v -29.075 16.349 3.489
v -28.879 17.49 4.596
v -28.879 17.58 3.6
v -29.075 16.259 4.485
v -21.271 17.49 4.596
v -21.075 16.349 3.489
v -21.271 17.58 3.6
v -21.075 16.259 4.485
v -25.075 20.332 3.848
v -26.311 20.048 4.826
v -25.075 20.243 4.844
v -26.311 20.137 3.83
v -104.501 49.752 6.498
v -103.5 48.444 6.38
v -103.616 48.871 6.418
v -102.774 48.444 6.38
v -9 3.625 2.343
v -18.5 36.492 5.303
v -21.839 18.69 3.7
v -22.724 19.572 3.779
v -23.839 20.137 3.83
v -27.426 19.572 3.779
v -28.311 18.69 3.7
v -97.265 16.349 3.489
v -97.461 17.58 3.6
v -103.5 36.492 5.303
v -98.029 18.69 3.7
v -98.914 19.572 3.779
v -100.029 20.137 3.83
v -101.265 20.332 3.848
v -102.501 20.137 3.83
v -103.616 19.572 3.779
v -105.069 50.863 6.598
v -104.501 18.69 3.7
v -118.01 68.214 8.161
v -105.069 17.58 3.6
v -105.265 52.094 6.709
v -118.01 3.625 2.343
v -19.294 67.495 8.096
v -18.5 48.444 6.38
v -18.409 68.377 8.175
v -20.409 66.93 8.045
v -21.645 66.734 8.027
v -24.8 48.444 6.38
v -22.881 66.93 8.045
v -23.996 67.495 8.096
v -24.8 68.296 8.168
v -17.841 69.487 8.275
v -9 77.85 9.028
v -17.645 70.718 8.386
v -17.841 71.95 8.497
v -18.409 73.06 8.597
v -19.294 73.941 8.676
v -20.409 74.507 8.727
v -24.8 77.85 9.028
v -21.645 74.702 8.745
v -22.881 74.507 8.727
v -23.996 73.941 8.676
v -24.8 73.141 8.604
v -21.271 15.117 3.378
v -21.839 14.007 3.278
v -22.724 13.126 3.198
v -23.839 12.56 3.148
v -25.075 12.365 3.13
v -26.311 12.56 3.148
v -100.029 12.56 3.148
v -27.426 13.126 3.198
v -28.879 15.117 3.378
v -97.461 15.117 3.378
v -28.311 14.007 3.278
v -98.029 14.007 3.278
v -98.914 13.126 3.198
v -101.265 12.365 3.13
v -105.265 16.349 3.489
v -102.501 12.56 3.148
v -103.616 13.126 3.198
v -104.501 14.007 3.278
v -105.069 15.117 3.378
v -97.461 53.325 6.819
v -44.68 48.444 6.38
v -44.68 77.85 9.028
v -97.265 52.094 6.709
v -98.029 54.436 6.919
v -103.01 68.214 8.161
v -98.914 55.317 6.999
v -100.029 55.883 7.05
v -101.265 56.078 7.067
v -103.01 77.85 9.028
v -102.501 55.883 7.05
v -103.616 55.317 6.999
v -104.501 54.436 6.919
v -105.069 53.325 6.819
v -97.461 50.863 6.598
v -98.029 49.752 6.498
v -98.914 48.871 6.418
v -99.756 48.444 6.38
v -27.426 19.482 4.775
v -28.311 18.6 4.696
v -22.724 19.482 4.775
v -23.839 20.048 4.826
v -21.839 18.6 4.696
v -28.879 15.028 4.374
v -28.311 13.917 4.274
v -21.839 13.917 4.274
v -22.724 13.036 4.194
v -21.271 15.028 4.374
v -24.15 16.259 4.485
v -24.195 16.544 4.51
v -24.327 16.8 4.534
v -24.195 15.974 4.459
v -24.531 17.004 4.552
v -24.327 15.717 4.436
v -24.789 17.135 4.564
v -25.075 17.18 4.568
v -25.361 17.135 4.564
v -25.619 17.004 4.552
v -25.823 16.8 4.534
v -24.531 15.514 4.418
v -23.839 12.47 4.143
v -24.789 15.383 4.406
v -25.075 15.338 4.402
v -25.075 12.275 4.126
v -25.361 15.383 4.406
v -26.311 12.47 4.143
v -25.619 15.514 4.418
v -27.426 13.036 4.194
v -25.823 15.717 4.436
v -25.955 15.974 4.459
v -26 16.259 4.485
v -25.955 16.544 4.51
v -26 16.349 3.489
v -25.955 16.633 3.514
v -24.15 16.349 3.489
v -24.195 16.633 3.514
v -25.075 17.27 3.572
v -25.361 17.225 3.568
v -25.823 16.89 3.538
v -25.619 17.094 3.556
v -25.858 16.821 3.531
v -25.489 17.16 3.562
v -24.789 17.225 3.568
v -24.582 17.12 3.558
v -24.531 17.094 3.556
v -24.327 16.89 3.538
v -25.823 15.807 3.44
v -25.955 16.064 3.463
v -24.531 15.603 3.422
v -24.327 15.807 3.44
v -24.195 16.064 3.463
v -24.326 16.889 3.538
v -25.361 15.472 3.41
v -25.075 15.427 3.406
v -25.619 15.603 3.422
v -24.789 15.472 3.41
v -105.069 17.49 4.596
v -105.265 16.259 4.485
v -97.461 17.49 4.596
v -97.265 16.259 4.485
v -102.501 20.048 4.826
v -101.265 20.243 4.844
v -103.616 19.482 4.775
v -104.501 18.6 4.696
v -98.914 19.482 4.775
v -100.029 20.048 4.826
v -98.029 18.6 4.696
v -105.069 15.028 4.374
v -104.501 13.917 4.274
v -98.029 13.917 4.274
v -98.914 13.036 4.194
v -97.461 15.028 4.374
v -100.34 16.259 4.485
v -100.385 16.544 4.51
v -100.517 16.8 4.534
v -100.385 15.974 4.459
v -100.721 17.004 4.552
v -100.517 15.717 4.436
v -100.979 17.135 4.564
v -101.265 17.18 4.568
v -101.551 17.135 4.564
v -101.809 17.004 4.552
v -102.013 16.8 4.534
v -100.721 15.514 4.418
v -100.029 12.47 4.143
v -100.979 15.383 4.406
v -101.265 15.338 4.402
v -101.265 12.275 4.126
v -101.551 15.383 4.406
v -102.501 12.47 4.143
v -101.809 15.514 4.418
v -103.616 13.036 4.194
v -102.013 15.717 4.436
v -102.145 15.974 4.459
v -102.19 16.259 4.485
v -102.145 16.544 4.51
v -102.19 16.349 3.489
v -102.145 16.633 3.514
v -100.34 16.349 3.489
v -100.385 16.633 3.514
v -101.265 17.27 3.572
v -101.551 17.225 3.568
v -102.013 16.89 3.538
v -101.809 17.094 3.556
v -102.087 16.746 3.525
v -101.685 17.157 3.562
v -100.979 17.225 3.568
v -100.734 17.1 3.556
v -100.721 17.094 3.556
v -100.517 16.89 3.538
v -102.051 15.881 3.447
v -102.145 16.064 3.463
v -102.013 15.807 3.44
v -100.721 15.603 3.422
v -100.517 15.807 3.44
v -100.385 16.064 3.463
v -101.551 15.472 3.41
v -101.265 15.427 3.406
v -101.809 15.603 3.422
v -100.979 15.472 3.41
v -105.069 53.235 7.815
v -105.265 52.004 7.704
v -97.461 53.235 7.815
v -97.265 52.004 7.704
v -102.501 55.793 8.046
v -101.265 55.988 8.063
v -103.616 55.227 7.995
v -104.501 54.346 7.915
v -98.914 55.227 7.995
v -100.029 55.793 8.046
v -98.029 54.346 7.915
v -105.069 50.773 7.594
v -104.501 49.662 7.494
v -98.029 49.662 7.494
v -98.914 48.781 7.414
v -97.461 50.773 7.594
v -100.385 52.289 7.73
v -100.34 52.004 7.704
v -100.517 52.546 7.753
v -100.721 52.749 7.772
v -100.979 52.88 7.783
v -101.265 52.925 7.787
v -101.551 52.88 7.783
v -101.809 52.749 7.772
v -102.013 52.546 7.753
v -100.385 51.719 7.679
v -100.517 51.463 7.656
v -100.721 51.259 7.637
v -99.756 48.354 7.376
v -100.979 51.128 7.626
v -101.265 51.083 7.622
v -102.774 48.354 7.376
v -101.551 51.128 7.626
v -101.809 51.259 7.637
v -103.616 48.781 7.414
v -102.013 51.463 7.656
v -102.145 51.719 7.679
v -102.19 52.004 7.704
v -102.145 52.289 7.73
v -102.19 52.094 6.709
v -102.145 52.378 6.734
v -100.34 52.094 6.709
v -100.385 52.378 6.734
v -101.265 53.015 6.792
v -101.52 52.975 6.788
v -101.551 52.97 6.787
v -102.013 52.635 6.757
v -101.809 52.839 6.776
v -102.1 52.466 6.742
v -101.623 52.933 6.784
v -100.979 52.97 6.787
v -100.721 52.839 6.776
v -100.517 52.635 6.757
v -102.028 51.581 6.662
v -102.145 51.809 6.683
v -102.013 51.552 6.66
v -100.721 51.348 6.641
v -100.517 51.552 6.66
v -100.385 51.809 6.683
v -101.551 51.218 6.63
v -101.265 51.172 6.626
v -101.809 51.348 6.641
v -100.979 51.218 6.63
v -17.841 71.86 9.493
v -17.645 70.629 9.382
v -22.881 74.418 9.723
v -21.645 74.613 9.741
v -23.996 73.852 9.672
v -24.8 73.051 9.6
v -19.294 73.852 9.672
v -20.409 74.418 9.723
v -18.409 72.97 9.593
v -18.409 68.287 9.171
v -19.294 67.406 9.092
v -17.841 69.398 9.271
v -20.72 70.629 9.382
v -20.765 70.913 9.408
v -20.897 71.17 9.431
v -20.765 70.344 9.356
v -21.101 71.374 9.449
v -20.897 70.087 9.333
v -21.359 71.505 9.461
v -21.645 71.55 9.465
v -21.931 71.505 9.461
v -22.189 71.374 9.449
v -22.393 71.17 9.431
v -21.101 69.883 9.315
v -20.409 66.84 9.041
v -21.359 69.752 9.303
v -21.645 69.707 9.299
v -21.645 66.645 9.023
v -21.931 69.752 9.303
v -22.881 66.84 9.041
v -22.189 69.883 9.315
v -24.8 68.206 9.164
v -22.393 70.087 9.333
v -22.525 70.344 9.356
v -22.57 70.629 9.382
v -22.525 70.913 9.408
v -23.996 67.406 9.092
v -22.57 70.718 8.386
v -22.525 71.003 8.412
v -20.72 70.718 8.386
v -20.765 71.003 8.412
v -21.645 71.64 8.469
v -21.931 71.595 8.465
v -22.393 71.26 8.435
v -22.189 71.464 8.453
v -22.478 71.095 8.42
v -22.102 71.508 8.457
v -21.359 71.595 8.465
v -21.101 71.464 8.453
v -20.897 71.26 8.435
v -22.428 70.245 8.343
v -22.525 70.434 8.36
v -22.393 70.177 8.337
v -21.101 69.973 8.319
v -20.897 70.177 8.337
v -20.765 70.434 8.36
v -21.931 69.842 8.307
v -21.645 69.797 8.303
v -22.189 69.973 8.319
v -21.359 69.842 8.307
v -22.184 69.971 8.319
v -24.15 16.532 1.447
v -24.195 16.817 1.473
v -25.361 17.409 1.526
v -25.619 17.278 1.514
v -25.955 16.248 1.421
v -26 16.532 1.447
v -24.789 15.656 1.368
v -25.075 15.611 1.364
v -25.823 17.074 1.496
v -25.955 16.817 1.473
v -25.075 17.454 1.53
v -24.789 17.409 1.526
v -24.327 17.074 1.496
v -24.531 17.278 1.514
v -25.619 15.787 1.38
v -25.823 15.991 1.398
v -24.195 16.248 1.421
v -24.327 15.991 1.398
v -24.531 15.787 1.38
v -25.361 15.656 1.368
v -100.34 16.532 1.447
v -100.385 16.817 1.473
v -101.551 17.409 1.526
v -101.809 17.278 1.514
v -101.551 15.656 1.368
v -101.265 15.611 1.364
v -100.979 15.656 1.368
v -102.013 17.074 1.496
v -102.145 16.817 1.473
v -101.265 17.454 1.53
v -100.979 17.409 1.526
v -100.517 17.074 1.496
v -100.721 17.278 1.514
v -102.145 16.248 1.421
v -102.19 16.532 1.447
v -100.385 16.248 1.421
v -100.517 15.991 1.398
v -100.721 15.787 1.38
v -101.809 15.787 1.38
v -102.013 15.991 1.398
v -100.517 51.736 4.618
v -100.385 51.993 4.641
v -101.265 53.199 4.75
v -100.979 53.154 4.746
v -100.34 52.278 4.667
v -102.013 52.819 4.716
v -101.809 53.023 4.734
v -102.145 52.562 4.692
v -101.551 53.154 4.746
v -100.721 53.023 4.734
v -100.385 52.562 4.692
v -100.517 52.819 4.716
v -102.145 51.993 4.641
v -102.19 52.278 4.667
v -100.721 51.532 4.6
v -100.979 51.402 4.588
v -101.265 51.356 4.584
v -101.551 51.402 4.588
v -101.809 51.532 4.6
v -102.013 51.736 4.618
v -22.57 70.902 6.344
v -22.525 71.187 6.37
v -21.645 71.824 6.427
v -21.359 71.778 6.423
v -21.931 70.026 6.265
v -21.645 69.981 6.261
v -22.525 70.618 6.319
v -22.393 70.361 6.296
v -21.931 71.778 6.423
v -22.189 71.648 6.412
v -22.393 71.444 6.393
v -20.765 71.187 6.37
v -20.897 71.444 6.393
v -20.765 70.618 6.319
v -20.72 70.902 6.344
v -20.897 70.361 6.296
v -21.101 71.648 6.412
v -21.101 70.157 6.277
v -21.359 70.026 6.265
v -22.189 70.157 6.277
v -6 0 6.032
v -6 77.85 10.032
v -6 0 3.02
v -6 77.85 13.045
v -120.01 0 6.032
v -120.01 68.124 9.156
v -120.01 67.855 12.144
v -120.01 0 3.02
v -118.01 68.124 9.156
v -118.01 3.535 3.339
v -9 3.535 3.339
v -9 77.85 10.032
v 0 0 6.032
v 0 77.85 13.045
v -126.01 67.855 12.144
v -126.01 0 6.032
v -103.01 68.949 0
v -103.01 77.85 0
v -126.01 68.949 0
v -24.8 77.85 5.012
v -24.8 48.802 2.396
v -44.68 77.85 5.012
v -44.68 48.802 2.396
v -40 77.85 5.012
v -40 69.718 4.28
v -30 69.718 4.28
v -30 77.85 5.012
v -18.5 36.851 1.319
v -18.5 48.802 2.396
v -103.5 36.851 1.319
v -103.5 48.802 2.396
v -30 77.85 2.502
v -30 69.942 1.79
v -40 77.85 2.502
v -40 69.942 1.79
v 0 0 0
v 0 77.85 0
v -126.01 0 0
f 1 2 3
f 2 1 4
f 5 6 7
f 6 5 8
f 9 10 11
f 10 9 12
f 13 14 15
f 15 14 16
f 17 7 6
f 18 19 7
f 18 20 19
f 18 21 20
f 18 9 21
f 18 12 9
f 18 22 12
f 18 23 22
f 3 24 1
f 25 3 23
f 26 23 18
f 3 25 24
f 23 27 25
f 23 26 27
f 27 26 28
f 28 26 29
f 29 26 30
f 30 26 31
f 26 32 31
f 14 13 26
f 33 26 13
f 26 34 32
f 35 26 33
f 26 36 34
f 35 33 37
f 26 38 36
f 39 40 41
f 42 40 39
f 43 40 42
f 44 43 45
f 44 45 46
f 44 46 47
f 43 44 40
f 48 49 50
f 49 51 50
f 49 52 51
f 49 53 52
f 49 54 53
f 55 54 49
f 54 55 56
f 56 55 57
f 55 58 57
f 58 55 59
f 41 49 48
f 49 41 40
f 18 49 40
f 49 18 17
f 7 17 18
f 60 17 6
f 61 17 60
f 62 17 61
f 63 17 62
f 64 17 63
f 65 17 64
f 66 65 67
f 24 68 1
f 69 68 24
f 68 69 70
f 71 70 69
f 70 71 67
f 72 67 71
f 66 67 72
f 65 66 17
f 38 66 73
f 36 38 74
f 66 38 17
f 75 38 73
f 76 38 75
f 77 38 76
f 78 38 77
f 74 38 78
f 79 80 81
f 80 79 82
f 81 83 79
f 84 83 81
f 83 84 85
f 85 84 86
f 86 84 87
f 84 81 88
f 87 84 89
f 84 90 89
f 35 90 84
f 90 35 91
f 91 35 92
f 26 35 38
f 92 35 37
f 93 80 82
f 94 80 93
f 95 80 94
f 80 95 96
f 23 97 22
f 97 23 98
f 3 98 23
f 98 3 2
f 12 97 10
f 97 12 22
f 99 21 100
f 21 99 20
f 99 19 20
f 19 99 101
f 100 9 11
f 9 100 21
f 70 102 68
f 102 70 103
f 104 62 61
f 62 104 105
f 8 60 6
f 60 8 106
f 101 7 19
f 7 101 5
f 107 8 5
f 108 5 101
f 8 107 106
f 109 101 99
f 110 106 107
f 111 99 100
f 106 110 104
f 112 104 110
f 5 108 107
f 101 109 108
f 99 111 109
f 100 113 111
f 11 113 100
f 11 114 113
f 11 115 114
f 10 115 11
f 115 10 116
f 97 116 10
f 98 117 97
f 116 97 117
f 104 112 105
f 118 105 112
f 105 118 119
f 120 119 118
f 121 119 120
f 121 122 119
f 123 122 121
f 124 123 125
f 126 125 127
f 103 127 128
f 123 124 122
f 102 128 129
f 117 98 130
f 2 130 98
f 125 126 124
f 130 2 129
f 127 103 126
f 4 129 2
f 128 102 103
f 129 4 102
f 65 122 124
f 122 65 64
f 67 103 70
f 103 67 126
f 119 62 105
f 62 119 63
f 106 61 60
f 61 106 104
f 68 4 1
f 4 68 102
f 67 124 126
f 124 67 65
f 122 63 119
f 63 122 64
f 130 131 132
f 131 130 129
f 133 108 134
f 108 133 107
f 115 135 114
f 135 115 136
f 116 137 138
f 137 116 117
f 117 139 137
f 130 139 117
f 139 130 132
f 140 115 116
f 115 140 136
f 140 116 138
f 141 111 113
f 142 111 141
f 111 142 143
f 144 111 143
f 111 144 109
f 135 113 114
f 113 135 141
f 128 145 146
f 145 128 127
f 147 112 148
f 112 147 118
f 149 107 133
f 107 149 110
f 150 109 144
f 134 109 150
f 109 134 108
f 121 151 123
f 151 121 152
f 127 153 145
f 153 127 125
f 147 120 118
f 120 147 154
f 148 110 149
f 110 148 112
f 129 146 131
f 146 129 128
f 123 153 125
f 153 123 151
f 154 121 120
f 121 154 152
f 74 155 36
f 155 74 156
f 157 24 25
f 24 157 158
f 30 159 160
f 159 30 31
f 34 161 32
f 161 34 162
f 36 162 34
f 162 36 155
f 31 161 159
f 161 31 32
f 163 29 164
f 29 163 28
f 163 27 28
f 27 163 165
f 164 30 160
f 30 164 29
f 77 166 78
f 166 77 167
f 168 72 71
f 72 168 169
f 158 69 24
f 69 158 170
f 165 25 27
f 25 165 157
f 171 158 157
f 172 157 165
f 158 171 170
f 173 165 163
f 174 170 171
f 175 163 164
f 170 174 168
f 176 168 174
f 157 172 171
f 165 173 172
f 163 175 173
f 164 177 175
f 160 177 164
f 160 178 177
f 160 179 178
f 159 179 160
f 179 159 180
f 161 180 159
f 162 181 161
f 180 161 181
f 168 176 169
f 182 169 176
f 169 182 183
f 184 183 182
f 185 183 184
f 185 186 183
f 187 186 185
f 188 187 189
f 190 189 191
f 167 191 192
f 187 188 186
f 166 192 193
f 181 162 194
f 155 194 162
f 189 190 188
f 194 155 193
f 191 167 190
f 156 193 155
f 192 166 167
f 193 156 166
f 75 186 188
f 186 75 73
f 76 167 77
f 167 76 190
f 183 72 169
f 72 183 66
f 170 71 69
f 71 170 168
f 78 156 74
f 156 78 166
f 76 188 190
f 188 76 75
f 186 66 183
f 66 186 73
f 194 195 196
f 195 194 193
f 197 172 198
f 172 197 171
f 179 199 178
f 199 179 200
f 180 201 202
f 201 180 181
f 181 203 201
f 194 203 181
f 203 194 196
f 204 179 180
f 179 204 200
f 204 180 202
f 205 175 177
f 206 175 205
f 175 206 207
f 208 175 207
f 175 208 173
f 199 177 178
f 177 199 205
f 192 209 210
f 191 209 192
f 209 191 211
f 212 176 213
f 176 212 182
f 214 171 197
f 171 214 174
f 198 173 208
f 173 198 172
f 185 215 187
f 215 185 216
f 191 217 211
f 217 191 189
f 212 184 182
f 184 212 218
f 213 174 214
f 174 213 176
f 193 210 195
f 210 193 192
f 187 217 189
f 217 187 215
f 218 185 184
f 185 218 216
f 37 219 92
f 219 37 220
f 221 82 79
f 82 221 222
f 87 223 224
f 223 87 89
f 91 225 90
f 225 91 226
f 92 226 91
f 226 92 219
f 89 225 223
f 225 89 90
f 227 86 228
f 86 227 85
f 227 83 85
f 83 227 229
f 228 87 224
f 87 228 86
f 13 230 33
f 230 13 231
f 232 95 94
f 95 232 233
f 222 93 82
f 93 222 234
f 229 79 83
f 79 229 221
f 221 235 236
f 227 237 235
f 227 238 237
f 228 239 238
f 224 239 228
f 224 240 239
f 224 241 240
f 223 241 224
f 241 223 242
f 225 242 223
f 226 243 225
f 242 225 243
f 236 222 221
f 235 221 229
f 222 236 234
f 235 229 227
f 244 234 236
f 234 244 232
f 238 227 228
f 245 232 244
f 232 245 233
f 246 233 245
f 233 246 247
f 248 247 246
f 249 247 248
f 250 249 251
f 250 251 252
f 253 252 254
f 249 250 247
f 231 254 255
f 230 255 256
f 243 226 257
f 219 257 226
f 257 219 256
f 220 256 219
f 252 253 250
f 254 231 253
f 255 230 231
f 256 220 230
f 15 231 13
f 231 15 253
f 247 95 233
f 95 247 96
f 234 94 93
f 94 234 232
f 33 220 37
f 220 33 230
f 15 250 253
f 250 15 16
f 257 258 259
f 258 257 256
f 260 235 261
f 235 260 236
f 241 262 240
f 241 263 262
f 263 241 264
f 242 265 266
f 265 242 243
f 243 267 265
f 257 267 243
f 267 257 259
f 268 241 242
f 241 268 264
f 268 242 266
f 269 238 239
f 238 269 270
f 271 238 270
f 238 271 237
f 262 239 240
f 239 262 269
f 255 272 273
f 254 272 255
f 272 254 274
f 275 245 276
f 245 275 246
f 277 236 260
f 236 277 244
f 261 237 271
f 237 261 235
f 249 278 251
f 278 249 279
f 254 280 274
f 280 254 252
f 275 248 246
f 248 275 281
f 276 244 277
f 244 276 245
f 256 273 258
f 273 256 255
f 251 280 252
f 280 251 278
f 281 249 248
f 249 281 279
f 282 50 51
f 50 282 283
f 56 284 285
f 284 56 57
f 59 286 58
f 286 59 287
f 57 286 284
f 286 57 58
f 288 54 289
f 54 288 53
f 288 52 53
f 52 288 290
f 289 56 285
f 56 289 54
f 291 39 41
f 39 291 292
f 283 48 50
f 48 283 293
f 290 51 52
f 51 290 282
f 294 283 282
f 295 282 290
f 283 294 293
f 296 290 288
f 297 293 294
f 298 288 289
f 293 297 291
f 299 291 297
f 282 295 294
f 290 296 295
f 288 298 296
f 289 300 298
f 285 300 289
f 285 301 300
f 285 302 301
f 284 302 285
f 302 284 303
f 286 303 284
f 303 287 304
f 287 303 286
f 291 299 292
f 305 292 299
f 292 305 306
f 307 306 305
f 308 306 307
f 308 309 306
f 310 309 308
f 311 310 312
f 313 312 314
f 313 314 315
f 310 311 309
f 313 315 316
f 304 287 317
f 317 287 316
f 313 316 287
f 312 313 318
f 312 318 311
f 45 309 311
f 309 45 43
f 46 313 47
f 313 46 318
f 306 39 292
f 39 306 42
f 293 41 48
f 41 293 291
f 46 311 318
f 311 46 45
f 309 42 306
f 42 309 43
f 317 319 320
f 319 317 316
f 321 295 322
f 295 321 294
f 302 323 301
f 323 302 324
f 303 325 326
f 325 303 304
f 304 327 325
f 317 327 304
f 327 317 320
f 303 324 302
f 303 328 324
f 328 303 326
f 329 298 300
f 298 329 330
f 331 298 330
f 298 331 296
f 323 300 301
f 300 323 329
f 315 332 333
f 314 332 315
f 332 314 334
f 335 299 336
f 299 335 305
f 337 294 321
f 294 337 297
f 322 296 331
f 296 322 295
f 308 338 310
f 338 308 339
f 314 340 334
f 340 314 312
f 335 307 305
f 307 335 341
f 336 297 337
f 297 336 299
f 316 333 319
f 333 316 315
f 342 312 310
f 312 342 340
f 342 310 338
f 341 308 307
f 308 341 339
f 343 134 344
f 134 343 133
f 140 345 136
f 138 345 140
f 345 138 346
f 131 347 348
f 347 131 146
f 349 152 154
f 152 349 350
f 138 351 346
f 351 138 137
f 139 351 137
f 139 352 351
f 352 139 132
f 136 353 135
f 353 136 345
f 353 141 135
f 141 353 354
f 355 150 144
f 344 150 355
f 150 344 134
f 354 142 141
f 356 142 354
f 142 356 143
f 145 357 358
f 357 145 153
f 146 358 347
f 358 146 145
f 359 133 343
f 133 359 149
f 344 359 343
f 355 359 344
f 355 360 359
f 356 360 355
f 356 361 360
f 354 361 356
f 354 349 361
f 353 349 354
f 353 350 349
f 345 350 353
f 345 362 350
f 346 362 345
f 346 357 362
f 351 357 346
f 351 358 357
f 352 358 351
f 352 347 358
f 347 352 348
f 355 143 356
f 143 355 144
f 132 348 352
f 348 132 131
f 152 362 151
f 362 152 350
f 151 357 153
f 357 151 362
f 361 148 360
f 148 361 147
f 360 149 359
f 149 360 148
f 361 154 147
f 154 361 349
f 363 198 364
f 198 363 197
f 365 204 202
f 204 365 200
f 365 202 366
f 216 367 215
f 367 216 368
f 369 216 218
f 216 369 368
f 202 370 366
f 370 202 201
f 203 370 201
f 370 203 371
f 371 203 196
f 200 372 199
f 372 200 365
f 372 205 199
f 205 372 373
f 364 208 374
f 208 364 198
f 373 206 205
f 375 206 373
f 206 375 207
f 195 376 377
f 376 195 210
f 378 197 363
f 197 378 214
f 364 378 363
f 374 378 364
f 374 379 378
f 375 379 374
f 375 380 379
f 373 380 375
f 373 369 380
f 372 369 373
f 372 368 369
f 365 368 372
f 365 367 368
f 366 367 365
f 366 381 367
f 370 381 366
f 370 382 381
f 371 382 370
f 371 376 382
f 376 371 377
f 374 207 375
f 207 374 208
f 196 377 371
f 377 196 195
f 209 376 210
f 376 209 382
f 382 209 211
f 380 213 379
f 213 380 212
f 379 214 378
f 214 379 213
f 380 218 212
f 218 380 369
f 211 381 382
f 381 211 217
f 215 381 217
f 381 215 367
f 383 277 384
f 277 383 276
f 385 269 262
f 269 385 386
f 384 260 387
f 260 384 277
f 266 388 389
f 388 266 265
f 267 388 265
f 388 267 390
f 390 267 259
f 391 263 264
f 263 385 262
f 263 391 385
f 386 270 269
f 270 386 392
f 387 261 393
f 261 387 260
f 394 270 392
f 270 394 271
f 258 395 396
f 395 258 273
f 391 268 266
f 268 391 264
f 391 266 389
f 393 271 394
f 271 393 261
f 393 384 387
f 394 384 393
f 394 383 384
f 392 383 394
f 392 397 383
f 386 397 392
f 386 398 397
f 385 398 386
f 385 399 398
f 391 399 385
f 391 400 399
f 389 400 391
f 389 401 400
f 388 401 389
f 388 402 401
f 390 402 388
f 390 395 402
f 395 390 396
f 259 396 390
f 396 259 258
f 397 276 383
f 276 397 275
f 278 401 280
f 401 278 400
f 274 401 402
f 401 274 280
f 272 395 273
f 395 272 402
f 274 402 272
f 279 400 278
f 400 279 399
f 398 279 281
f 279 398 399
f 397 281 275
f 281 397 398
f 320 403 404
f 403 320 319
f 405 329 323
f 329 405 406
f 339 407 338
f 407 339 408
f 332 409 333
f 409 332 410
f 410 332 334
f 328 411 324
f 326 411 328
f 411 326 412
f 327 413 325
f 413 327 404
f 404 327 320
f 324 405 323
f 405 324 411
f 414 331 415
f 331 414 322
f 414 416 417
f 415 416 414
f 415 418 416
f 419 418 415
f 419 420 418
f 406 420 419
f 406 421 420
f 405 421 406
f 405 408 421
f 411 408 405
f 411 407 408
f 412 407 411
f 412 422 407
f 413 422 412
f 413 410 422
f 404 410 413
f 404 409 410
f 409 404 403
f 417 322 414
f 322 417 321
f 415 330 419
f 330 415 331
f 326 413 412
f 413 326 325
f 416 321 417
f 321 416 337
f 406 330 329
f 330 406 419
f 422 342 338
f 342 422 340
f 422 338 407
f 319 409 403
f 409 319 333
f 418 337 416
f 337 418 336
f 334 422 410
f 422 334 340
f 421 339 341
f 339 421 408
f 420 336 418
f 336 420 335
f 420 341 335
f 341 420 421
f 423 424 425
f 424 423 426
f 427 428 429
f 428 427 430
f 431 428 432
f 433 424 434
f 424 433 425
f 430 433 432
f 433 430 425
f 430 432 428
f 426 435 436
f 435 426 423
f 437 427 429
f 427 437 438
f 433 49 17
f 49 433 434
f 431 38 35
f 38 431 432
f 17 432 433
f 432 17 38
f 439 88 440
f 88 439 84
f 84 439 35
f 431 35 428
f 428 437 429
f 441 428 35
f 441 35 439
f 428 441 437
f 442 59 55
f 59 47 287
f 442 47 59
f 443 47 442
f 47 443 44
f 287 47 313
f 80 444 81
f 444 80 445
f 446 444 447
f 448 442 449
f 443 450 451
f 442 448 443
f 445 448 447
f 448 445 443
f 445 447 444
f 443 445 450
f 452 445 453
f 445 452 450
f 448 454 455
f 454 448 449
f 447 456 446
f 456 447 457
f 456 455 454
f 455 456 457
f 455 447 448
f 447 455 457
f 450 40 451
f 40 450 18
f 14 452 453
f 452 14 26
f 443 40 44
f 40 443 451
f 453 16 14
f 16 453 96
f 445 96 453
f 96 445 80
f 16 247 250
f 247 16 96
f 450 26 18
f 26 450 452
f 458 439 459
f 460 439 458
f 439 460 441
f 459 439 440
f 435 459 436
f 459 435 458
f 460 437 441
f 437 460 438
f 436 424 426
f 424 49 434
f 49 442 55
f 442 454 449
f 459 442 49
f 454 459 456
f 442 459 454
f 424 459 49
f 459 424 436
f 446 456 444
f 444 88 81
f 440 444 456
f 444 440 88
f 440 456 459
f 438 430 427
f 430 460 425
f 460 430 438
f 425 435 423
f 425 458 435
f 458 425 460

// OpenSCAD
mirror([1, 0, 0])
difference() {
  cube([126.01, 77.85, 20], center=false);
  union()
  translate([7, 0, 0]) {
    translate([0, 0, -2])
    rotate([5.147, 0, 0])
    union() {
      translate([0, 0, 4])
      difference() {
        union() {
          translate([18.075, 16.775, 0])
          translate([0, 0, -2.05])
          cylinder(h = 3.75, r1 = 0.925, r2 = 0.925, center = false, $fn = 20);
          translate([94.265, 16.775, 0])
          translate([0, 0, -2.05])
          cylinder(h = 3.75, r1 = 0.925, r2 = 0.925, center = false, $fn = 20);
          translate([94.265, 52.665000000000006, 0])
          translate([0, 0, -2.05])
          cylinder(h = 3.75, r1 = 0.925, r2 = 0.925, center = false, $fn = 20);
          translate([14.645, 71.36500000000001, 0])
          translate([0, 0, -2.05])
          cylinder(h = 3.75, r1 = 0.925, r2 = 0.925, center = false, $fn = 20);
          translate([-1, 0, 1])
          cube([114.01, 100, 100], center=false);
          translate([-8, 0, 4])
          cube([142.01, 100, 100], center=false);
          translate([2, 4, 0])
          cube([109.01, 177.85, 11.7], center=false);
          translate([96.01, 68.85, -10])
          cube([26, 17, 25], center=false);
        }
        translate([18.075, 16.775, 0])
        difference() {
          cylinder(h = 1, r1 = 4.0, r2 = 4.0, center = false, $fn = 20);
          translate([0, 0, -2.05])
          cylinder(h = 3.75, r1 = 0.925, r2 = 0.925, center = false, $fn = 20);
        }
        translate([94.265, 16.775, 0])
        difference() {
          cylinder(h = 1, r1 = 4.0, r2 = 4.0, center = false, $fn = 20);
          translate([0, 0, -2.05])
          cylinder(h = 3.75, r1 = 0.925, r2 = 0.925, center = false, $fn = 20);
        }
        translate([94.265, 52.665000000000006, 0])
        difference() {
          cylinder(h = 1, r1 = 4.0, r2 = 4.0, center = false, $fn = 20);
          translate([0, 0, -2.05])
          cylinder(h = 3.75, r1 = 0.925, r2 = 0.925, center = false, $fn = 20);
        }
        translate([14.645, 71.36500000000001, 0])
        difference() {
          cylinder(h = 1, r1 = 4.0, r2 = 4.0, center = false, $fn = 20);
          translate([0, 0, -2.05])
          cylinder(h = 3.75, r1 = 0.925, r2 = 0.925, center = false, $fn = 20);
        }
      }
      union()
      translate([-1.5, 0, 0]) {
        translate([19.3, 43.5, 0])
        cube([19.88, 133.44, 8], center=false);
        translate([24.5, 70, -2.5])
        cube([10, 100, 2.5], center=false);
      }
      translate([11.5, 37, 0])
      cube([85, 12, 10], center=false);
    }
    translate([-10, -10, -150])
    cube([150, 150, 150], center=false);
  }
}
